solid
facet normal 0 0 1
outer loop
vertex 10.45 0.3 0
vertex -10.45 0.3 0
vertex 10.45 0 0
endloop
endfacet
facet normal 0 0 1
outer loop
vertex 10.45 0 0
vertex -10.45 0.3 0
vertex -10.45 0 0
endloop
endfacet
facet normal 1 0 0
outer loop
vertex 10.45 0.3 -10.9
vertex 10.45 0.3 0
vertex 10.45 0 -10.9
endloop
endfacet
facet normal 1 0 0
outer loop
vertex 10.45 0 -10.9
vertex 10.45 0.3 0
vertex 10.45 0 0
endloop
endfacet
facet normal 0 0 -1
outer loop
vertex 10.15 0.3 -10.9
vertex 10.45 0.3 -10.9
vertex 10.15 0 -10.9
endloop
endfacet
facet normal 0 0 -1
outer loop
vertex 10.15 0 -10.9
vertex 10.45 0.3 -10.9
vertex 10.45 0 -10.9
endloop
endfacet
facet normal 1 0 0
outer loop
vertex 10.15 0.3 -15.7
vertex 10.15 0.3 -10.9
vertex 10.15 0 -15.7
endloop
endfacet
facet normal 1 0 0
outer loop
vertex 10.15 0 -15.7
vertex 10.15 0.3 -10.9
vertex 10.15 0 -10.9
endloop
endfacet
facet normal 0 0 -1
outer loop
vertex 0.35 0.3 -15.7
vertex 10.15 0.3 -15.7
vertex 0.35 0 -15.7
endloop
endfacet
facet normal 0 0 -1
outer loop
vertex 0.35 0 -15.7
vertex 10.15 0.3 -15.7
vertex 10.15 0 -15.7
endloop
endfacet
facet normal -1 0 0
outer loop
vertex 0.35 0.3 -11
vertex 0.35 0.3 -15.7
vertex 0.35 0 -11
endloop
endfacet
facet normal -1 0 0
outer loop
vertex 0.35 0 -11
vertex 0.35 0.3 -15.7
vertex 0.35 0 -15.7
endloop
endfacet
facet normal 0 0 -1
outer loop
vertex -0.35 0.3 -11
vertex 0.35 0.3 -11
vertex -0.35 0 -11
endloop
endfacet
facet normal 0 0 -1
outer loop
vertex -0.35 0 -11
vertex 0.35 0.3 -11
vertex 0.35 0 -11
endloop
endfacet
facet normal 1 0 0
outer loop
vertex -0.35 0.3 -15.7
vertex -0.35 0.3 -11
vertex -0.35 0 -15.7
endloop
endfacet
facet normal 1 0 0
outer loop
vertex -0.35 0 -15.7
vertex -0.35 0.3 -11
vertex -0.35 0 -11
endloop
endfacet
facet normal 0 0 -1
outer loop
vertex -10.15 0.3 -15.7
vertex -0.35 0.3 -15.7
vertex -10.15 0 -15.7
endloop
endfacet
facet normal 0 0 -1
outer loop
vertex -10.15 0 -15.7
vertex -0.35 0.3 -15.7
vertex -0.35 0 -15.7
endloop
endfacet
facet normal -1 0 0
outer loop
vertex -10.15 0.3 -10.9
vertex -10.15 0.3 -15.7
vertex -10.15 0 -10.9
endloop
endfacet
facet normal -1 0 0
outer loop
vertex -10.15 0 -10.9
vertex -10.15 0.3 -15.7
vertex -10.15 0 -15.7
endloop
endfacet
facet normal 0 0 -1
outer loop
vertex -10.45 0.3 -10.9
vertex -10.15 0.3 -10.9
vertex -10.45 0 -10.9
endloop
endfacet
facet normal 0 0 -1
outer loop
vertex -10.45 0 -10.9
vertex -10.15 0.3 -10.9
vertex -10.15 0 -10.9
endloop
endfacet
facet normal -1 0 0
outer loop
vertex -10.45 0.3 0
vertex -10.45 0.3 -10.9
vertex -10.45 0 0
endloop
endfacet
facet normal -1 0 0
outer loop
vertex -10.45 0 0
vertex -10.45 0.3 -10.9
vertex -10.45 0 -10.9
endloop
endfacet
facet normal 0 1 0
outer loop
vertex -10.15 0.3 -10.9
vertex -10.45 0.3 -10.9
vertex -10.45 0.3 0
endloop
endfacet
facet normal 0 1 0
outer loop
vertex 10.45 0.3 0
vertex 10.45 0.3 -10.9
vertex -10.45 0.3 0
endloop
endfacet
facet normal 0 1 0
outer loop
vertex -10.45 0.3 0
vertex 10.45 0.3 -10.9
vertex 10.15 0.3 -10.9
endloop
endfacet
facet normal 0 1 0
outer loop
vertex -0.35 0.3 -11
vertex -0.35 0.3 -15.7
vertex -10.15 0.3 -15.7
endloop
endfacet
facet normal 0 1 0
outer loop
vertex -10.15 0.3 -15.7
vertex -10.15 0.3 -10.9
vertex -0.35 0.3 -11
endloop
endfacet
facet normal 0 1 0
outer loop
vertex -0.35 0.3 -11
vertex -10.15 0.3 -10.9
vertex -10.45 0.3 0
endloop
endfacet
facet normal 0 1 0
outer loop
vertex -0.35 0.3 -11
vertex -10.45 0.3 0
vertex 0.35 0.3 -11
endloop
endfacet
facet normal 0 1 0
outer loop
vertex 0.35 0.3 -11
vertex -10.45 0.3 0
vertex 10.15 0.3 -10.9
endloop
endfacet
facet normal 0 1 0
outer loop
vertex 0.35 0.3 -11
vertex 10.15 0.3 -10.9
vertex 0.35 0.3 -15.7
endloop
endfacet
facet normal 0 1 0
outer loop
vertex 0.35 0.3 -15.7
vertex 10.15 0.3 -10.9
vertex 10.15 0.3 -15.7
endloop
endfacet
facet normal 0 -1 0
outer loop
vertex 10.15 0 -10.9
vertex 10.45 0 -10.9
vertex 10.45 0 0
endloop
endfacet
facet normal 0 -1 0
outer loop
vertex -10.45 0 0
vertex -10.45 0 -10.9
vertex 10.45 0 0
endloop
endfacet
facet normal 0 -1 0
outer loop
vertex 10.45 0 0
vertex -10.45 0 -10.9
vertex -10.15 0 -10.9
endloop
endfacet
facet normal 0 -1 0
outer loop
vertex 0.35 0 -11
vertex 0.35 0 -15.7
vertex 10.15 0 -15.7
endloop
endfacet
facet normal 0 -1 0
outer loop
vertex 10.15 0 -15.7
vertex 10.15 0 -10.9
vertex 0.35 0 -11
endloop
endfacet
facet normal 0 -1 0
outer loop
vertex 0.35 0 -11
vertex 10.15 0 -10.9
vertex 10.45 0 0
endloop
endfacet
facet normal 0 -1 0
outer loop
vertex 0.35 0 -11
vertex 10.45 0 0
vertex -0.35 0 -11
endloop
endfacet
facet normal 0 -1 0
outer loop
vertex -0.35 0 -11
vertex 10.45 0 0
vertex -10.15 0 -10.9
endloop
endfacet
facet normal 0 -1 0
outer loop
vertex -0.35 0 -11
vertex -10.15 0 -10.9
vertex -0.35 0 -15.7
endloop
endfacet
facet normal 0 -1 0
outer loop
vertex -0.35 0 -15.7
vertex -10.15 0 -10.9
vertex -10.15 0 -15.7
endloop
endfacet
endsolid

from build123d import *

# Parameters (mm, degrees)
SKETCH1_W           = 9.8
SKETCH1_H           = 4.7
SKETCH1_H_2         = 0.1
SKETCH1_W_2         = 0.1
SKETCH1_H_3         = 10.9
SKETCH1_W_3         = 0.2
BOSS_EXTRUDE1_DEPTH = 0.3


with BuildPart() as part:
    # Sketch1 → Boss-Extrude1 (new body)
    with BuildSketch(Plane(origin=(0, 0, 0), x_dir=(1, 0, 0), z_dir=(0, 1, 0))):
        with Locations((-5.25, 13.35)):
            Rectangle(SKETCH1_W, SKETCH1_H)
        with Locations((5.25, 13.35)):
            Rectangle(SKETCH1_W, SKETCH1_H)
        with Locations((-5.25, 10.95)):
            Rectangle(SKETCH1_W, SKETCH1_H_2)
        with Locations((5.25, 10.95)):
            Rectangle(SKETCH1_W, SKETCH1_H_2)
        Polygon((-0.35, 11), (-0.35, 10.9), (0.35, 10.9), (0.35, 11), (0.25, 11), (-0.25, 11), align=None)
        Polygon((-10.15, 10.9), (-10.15, 0), (10.15, 0), (10.15, 10.9), (0.35, 10.9), (-0.35, 10.9), align=None)
        with Locations((-10.2, 5.45)):
            Rectangle(SKETCH1_W_2, SKETCH1_H_3)
        with Locations((-10.35, 5.45)):
            Rectangle(SKETCH1_W_3, SKETCH1_H_3)
        with Locations((10.35, 5.45)):
            Rectangle(SKETCH1_W_3, SKETCH1_H_3)
        with Locations((10.2, 5.45)):
            Rectangle(SKETCH1_W_2, SKETCH1_H_3)
    extrude(amount=BOSS_EXTRUDE1_DEPTH)


solid = part.part
